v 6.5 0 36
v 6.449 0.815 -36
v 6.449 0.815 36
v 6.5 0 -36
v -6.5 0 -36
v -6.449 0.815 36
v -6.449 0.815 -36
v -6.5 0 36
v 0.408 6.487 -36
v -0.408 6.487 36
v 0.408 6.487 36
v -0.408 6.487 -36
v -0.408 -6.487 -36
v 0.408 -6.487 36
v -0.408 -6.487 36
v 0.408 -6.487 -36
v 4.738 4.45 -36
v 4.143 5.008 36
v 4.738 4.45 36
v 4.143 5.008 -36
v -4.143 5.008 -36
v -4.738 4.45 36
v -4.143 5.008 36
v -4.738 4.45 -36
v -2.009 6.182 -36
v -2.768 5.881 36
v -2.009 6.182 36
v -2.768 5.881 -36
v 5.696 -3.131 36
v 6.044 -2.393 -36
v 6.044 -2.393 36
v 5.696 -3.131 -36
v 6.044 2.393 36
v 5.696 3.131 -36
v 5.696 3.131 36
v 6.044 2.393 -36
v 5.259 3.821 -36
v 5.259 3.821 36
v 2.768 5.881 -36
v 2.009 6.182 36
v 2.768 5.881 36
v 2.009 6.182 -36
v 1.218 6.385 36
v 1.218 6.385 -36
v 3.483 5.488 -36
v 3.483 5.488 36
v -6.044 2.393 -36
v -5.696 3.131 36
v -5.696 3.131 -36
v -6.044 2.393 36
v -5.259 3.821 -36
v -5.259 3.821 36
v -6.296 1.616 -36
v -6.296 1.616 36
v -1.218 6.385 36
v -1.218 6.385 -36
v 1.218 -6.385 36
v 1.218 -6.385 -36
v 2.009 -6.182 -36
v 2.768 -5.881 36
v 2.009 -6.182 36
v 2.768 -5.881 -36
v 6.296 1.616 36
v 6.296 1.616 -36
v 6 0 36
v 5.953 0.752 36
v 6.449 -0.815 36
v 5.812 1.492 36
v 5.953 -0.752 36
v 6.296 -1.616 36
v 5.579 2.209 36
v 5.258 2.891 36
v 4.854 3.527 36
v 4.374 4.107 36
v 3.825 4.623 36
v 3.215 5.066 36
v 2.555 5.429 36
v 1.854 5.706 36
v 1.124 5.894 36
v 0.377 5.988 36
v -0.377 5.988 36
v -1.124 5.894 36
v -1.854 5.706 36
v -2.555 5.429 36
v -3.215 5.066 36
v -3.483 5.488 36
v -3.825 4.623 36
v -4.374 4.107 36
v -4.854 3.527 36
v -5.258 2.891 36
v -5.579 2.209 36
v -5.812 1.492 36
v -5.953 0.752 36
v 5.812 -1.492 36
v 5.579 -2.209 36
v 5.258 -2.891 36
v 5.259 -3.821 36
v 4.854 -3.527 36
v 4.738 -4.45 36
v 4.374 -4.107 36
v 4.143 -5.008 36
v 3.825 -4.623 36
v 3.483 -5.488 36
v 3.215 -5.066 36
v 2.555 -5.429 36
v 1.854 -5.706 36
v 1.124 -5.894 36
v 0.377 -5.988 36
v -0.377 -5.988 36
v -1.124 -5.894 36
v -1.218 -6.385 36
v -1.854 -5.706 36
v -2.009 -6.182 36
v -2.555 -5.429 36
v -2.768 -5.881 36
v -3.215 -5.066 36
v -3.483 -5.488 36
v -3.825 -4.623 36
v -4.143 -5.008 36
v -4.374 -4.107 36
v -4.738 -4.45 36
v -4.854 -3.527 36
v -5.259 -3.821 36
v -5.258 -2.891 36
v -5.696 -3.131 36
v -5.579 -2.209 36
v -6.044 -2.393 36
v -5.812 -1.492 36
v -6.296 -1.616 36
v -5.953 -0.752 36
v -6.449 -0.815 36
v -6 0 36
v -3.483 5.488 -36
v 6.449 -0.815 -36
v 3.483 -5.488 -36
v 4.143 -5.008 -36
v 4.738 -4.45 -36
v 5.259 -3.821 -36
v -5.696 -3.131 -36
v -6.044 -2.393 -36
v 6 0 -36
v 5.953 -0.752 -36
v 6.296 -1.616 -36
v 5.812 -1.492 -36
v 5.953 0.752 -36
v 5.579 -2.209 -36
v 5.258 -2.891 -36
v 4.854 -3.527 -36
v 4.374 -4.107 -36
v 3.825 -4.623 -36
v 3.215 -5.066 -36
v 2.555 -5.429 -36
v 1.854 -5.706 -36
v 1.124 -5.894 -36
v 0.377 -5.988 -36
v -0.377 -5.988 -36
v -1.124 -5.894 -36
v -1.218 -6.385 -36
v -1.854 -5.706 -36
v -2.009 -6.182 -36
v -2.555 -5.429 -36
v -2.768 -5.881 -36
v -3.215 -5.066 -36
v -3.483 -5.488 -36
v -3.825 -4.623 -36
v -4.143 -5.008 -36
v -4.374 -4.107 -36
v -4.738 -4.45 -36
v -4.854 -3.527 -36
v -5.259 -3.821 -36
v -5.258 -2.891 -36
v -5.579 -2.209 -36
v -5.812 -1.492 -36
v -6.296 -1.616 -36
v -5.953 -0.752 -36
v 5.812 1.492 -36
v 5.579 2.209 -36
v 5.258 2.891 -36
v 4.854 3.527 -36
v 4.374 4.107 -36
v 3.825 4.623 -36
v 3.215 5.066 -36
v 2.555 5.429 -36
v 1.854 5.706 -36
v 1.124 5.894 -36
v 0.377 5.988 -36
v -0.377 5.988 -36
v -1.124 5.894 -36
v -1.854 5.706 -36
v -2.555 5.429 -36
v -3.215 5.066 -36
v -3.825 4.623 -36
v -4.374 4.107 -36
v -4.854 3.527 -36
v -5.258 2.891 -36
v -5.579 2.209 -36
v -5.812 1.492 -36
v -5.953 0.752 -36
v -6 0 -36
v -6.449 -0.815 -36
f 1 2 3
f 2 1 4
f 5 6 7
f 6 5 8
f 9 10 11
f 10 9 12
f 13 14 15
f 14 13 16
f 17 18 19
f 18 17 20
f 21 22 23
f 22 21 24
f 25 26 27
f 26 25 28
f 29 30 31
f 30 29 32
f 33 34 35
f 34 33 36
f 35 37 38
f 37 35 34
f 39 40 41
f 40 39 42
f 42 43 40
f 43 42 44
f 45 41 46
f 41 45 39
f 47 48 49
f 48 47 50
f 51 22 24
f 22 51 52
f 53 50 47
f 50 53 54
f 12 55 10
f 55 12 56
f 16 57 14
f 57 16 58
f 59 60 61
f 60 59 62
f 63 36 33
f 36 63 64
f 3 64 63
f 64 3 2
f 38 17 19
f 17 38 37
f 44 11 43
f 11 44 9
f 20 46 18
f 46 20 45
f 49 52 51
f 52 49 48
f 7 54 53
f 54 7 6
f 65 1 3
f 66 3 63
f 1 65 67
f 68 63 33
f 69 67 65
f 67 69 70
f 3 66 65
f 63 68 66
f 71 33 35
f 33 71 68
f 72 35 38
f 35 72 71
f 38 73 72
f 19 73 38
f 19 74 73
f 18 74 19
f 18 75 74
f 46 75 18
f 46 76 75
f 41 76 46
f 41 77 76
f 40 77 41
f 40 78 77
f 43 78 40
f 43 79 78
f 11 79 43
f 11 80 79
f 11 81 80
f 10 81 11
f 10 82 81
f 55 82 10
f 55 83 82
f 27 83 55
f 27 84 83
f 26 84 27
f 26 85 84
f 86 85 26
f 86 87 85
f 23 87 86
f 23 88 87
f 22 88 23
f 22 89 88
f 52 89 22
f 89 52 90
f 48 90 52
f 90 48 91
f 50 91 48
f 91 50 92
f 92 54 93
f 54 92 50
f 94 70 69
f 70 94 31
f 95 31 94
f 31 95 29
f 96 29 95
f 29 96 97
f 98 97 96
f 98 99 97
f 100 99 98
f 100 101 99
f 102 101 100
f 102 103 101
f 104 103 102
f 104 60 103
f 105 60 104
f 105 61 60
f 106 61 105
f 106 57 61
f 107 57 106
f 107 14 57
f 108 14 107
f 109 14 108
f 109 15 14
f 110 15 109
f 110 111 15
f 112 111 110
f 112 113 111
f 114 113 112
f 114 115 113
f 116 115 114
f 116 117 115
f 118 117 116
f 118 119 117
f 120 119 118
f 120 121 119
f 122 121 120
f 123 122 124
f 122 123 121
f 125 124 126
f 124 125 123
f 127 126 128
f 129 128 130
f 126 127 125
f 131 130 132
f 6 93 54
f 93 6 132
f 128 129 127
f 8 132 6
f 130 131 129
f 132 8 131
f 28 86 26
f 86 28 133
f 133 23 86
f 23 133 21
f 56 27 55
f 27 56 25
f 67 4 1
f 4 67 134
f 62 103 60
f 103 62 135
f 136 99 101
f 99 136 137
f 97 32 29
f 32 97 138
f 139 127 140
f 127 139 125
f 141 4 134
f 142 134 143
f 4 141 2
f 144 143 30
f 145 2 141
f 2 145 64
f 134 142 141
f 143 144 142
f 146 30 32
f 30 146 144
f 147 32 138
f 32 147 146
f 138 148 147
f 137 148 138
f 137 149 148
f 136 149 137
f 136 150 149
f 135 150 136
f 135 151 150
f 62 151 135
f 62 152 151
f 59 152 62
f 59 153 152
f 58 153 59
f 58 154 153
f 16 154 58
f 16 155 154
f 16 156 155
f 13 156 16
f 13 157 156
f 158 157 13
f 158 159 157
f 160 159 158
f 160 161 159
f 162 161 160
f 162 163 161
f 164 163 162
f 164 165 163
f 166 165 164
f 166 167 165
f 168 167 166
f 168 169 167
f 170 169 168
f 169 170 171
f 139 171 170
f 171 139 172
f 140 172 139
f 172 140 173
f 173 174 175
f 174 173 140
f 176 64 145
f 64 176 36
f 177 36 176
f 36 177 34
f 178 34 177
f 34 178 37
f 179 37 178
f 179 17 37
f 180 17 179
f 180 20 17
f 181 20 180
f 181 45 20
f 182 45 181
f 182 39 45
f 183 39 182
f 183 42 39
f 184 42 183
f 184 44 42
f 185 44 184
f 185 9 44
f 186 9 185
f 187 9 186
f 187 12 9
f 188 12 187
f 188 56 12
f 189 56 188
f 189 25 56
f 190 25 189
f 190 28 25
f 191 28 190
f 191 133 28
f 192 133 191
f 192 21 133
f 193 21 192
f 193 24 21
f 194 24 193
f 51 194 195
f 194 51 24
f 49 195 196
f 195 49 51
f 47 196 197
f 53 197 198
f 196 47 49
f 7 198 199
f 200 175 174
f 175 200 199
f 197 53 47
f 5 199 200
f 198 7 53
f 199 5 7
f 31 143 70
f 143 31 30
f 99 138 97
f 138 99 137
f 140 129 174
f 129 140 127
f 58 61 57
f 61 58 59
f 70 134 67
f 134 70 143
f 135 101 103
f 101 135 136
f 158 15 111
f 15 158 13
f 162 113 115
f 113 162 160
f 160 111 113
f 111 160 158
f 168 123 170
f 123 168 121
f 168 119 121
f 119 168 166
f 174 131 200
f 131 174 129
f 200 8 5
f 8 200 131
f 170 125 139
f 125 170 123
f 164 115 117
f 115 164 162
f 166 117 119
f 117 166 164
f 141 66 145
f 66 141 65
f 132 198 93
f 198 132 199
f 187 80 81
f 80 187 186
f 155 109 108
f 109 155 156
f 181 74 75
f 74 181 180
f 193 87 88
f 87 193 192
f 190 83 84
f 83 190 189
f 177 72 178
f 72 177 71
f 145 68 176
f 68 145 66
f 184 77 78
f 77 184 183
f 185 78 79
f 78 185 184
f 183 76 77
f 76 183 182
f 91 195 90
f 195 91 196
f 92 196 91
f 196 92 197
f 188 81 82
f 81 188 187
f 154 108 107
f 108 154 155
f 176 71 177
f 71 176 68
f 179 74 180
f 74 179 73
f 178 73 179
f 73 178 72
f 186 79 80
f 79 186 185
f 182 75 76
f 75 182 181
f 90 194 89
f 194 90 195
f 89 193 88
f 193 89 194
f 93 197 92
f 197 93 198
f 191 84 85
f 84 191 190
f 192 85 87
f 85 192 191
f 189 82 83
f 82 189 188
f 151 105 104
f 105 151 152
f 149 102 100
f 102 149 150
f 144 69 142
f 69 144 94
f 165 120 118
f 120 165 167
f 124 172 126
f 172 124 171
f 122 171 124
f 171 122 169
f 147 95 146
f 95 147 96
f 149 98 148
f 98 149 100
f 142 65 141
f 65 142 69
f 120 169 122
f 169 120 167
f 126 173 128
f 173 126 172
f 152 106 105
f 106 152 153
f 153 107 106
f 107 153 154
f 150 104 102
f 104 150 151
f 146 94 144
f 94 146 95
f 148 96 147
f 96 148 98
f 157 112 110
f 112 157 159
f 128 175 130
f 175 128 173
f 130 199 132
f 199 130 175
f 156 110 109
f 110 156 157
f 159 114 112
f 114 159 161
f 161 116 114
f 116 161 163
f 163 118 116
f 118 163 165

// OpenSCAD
$fn = 50;


difference() {
	union() {
		translate(v = [0, 0, -36.0000000000]) {
			cylinder(h = 72, r = 6.5000000000);
		}
	}
	union() {
		translate(v = [0, 0, -100.0000000000]) {
			cylinder(h = 200, r = 6);
		}
	}
}
